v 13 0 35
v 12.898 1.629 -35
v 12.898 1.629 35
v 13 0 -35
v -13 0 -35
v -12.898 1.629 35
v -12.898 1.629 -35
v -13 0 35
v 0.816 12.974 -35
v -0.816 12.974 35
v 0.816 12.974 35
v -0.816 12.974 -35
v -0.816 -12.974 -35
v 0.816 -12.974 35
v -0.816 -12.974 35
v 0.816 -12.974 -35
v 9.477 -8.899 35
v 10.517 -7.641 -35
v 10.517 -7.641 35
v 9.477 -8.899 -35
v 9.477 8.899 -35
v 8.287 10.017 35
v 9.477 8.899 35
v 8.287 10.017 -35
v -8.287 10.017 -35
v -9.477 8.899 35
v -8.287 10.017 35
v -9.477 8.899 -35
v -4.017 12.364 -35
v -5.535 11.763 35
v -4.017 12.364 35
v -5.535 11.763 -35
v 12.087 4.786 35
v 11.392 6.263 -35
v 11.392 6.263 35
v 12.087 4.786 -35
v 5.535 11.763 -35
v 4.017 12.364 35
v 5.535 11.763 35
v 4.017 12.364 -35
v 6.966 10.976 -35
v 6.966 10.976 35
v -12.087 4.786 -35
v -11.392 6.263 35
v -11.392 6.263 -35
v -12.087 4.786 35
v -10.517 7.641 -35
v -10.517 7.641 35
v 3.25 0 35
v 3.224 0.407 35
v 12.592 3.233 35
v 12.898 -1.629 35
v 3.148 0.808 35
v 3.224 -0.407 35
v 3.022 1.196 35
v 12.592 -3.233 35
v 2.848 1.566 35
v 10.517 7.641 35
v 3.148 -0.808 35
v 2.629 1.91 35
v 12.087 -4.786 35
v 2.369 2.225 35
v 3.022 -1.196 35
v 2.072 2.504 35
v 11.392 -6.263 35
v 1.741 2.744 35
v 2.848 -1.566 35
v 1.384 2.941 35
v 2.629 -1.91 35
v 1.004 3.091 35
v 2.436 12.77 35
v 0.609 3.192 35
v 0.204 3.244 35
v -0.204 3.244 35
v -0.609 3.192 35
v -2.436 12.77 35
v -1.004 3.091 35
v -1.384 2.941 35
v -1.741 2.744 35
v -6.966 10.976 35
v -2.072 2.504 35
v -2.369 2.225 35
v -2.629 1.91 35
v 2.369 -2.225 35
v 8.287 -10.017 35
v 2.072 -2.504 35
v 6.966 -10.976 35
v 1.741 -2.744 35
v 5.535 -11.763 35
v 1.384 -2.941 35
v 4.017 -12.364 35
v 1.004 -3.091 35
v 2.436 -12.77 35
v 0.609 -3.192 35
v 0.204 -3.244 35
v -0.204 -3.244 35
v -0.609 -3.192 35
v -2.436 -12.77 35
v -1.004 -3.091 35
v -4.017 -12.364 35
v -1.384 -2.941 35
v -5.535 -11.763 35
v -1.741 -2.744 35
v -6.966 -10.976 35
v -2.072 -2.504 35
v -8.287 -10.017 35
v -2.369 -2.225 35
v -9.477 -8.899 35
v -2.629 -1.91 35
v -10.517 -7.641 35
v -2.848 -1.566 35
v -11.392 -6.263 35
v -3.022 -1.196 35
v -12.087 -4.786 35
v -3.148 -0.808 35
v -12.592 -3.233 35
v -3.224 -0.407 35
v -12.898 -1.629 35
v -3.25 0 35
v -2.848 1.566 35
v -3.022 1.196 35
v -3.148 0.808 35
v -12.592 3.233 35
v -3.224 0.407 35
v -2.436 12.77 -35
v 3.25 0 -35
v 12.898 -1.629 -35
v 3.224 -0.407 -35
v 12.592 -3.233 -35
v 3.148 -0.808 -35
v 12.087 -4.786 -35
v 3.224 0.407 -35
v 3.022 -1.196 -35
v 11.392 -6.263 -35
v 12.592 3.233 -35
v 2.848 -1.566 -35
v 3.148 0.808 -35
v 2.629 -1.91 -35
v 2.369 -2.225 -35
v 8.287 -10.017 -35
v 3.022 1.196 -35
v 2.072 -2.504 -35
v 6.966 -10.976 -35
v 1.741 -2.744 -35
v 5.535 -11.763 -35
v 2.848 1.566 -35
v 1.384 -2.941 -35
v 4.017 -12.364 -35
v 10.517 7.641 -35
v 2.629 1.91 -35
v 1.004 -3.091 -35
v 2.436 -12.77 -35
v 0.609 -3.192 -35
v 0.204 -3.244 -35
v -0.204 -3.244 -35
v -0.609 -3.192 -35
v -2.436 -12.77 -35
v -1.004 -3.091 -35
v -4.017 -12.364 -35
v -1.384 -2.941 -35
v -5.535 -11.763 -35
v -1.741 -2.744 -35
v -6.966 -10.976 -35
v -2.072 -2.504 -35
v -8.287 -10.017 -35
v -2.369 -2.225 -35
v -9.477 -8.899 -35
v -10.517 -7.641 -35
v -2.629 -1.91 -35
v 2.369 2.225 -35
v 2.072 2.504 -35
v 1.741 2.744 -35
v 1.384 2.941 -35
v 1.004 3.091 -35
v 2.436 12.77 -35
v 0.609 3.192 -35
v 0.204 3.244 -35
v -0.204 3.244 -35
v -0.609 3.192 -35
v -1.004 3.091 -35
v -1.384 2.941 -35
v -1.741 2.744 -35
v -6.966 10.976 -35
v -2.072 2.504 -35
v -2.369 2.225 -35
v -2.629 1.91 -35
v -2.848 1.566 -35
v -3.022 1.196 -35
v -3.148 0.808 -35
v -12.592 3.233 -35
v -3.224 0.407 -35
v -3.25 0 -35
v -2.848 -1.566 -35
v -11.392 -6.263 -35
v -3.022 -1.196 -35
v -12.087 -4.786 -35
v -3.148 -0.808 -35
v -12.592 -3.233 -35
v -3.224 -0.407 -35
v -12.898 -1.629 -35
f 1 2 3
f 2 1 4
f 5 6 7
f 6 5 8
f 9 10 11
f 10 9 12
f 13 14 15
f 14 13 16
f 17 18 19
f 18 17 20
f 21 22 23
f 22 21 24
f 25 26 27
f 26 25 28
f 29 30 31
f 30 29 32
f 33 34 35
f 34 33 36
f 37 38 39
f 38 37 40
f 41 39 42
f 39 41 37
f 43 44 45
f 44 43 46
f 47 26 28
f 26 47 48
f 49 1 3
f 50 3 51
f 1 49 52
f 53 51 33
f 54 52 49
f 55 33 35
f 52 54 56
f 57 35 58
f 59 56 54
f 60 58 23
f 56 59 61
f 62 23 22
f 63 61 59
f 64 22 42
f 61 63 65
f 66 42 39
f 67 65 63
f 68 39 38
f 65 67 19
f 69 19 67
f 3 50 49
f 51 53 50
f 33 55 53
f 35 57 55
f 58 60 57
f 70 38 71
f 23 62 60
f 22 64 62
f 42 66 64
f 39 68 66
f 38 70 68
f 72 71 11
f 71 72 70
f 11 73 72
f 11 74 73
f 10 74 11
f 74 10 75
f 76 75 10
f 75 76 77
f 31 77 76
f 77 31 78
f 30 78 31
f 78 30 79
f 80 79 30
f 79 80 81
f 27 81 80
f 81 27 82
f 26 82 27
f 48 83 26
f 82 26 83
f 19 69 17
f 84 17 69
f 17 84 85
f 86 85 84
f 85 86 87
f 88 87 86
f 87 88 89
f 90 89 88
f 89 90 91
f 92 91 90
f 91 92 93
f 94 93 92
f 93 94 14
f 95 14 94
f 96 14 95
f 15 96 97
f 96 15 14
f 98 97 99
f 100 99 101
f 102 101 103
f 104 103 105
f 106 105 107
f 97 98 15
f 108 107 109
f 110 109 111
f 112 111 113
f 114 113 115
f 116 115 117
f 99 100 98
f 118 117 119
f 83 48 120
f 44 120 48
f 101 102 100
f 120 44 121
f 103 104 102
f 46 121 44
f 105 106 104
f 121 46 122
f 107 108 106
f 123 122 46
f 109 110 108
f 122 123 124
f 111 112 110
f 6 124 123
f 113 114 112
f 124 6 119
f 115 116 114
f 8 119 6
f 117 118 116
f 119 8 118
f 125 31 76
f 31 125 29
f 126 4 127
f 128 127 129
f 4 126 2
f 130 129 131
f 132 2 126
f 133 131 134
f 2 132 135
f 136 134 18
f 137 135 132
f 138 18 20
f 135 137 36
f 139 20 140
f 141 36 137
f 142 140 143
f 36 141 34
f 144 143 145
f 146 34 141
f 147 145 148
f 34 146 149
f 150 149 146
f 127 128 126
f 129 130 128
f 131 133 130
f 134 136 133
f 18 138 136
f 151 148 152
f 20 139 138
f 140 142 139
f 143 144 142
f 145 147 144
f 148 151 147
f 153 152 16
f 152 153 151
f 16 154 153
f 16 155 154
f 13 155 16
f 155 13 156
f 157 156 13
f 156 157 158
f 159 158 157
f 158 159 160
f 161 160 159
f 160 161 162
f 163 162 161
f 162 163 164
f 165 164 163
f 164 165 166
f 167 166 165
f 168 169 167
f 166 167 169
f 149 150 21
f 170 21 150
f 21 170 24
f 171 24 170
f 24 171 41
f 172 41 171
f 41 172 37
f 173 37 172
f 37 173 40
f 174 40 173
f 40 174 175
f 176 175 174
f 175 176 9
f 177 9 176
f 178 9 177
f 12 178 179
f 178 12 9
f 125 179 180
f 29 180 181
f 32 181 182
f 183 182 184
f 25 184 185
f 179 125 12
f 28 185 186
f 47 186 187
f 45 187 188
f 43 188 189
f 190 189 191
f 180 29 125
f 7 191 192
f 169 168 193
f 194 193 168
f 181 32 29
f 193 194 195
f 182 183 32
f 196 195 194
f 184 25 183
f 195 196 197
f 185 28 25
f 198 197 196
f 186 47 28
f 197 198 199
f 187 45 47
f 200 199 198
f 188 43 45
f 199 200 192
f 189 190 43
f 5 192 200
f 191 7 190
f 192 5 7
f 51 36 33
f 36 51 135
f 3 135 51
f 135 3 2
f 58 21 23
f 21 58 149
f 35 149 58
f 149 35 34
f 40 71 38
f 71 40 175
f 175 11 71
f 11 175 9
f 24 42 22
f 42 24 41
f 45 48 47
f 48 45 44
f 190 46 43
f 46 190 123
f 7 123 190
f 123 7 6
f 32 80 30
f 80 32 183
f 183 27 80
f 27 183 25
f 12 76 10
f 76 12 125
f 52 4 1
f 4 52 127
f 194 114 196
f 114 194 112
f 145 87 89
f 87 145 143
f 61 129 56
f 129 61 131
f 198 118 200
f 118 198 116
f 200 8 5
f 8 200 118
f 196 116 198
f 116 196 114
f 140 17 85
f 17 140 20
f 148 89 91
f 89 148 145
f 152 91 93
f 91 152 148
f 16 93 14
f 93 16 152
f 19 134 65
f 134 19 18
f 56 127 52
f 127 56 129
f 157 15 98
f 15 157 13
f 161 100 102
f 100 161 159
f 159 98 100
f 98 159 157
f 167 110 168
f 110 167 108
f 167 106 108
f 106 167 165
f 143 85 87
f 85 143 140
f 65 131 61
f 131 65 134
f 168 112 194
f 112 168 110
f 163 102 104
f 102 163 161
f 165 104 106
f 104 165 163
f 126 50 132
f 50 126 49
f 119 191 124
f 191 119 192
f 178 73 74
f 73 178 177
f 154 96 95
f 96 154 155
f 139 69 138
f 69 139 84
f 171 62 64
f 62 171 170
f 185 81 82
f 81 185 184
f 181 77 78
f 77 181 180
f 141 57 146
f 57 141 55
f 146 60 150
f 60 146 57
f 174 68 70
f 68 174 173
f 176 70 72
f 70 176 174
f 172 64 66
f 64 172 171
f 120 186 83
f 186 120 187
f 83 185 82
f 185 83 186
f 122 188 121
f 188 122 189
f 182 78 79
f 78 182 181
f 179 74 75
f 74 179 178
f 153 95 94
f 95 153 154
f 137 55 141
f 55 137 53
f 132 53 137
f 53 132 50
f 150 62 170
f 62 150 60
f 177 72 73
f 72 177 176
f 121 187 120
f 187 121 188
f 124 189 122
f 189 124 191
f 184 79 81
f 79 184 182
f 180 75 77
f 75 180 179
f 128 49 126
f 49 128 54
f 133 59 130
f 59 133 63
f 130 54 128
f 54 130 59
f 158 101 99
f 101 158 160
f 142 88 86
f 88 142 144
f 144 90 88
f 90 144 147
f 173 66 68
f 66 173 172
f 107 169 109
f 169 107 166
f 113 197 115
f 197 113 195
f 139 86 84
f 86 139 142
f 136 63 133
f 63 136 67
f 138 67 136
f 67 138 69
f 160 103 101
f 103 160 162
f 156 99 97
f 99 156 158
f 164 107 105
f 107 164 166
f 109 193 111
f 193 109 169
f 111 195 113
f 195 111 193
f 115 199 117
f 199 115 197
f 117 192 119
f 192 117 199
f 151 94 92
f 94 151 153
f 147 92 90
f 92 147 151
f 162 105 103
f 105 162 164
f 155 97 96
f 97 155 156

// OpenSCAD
$fn = 50;


difference() {
	union() {
		translate(v = [0, 0, -35.0000000000]) {
			cylinder(h = 70, r = 13.0000000000);
		}
	}
	union() {
		translate(v = [0, 0, -100.0000000000]) {
			cylinder(h = 200, r = 3.2500000000);
		}
	}
}
